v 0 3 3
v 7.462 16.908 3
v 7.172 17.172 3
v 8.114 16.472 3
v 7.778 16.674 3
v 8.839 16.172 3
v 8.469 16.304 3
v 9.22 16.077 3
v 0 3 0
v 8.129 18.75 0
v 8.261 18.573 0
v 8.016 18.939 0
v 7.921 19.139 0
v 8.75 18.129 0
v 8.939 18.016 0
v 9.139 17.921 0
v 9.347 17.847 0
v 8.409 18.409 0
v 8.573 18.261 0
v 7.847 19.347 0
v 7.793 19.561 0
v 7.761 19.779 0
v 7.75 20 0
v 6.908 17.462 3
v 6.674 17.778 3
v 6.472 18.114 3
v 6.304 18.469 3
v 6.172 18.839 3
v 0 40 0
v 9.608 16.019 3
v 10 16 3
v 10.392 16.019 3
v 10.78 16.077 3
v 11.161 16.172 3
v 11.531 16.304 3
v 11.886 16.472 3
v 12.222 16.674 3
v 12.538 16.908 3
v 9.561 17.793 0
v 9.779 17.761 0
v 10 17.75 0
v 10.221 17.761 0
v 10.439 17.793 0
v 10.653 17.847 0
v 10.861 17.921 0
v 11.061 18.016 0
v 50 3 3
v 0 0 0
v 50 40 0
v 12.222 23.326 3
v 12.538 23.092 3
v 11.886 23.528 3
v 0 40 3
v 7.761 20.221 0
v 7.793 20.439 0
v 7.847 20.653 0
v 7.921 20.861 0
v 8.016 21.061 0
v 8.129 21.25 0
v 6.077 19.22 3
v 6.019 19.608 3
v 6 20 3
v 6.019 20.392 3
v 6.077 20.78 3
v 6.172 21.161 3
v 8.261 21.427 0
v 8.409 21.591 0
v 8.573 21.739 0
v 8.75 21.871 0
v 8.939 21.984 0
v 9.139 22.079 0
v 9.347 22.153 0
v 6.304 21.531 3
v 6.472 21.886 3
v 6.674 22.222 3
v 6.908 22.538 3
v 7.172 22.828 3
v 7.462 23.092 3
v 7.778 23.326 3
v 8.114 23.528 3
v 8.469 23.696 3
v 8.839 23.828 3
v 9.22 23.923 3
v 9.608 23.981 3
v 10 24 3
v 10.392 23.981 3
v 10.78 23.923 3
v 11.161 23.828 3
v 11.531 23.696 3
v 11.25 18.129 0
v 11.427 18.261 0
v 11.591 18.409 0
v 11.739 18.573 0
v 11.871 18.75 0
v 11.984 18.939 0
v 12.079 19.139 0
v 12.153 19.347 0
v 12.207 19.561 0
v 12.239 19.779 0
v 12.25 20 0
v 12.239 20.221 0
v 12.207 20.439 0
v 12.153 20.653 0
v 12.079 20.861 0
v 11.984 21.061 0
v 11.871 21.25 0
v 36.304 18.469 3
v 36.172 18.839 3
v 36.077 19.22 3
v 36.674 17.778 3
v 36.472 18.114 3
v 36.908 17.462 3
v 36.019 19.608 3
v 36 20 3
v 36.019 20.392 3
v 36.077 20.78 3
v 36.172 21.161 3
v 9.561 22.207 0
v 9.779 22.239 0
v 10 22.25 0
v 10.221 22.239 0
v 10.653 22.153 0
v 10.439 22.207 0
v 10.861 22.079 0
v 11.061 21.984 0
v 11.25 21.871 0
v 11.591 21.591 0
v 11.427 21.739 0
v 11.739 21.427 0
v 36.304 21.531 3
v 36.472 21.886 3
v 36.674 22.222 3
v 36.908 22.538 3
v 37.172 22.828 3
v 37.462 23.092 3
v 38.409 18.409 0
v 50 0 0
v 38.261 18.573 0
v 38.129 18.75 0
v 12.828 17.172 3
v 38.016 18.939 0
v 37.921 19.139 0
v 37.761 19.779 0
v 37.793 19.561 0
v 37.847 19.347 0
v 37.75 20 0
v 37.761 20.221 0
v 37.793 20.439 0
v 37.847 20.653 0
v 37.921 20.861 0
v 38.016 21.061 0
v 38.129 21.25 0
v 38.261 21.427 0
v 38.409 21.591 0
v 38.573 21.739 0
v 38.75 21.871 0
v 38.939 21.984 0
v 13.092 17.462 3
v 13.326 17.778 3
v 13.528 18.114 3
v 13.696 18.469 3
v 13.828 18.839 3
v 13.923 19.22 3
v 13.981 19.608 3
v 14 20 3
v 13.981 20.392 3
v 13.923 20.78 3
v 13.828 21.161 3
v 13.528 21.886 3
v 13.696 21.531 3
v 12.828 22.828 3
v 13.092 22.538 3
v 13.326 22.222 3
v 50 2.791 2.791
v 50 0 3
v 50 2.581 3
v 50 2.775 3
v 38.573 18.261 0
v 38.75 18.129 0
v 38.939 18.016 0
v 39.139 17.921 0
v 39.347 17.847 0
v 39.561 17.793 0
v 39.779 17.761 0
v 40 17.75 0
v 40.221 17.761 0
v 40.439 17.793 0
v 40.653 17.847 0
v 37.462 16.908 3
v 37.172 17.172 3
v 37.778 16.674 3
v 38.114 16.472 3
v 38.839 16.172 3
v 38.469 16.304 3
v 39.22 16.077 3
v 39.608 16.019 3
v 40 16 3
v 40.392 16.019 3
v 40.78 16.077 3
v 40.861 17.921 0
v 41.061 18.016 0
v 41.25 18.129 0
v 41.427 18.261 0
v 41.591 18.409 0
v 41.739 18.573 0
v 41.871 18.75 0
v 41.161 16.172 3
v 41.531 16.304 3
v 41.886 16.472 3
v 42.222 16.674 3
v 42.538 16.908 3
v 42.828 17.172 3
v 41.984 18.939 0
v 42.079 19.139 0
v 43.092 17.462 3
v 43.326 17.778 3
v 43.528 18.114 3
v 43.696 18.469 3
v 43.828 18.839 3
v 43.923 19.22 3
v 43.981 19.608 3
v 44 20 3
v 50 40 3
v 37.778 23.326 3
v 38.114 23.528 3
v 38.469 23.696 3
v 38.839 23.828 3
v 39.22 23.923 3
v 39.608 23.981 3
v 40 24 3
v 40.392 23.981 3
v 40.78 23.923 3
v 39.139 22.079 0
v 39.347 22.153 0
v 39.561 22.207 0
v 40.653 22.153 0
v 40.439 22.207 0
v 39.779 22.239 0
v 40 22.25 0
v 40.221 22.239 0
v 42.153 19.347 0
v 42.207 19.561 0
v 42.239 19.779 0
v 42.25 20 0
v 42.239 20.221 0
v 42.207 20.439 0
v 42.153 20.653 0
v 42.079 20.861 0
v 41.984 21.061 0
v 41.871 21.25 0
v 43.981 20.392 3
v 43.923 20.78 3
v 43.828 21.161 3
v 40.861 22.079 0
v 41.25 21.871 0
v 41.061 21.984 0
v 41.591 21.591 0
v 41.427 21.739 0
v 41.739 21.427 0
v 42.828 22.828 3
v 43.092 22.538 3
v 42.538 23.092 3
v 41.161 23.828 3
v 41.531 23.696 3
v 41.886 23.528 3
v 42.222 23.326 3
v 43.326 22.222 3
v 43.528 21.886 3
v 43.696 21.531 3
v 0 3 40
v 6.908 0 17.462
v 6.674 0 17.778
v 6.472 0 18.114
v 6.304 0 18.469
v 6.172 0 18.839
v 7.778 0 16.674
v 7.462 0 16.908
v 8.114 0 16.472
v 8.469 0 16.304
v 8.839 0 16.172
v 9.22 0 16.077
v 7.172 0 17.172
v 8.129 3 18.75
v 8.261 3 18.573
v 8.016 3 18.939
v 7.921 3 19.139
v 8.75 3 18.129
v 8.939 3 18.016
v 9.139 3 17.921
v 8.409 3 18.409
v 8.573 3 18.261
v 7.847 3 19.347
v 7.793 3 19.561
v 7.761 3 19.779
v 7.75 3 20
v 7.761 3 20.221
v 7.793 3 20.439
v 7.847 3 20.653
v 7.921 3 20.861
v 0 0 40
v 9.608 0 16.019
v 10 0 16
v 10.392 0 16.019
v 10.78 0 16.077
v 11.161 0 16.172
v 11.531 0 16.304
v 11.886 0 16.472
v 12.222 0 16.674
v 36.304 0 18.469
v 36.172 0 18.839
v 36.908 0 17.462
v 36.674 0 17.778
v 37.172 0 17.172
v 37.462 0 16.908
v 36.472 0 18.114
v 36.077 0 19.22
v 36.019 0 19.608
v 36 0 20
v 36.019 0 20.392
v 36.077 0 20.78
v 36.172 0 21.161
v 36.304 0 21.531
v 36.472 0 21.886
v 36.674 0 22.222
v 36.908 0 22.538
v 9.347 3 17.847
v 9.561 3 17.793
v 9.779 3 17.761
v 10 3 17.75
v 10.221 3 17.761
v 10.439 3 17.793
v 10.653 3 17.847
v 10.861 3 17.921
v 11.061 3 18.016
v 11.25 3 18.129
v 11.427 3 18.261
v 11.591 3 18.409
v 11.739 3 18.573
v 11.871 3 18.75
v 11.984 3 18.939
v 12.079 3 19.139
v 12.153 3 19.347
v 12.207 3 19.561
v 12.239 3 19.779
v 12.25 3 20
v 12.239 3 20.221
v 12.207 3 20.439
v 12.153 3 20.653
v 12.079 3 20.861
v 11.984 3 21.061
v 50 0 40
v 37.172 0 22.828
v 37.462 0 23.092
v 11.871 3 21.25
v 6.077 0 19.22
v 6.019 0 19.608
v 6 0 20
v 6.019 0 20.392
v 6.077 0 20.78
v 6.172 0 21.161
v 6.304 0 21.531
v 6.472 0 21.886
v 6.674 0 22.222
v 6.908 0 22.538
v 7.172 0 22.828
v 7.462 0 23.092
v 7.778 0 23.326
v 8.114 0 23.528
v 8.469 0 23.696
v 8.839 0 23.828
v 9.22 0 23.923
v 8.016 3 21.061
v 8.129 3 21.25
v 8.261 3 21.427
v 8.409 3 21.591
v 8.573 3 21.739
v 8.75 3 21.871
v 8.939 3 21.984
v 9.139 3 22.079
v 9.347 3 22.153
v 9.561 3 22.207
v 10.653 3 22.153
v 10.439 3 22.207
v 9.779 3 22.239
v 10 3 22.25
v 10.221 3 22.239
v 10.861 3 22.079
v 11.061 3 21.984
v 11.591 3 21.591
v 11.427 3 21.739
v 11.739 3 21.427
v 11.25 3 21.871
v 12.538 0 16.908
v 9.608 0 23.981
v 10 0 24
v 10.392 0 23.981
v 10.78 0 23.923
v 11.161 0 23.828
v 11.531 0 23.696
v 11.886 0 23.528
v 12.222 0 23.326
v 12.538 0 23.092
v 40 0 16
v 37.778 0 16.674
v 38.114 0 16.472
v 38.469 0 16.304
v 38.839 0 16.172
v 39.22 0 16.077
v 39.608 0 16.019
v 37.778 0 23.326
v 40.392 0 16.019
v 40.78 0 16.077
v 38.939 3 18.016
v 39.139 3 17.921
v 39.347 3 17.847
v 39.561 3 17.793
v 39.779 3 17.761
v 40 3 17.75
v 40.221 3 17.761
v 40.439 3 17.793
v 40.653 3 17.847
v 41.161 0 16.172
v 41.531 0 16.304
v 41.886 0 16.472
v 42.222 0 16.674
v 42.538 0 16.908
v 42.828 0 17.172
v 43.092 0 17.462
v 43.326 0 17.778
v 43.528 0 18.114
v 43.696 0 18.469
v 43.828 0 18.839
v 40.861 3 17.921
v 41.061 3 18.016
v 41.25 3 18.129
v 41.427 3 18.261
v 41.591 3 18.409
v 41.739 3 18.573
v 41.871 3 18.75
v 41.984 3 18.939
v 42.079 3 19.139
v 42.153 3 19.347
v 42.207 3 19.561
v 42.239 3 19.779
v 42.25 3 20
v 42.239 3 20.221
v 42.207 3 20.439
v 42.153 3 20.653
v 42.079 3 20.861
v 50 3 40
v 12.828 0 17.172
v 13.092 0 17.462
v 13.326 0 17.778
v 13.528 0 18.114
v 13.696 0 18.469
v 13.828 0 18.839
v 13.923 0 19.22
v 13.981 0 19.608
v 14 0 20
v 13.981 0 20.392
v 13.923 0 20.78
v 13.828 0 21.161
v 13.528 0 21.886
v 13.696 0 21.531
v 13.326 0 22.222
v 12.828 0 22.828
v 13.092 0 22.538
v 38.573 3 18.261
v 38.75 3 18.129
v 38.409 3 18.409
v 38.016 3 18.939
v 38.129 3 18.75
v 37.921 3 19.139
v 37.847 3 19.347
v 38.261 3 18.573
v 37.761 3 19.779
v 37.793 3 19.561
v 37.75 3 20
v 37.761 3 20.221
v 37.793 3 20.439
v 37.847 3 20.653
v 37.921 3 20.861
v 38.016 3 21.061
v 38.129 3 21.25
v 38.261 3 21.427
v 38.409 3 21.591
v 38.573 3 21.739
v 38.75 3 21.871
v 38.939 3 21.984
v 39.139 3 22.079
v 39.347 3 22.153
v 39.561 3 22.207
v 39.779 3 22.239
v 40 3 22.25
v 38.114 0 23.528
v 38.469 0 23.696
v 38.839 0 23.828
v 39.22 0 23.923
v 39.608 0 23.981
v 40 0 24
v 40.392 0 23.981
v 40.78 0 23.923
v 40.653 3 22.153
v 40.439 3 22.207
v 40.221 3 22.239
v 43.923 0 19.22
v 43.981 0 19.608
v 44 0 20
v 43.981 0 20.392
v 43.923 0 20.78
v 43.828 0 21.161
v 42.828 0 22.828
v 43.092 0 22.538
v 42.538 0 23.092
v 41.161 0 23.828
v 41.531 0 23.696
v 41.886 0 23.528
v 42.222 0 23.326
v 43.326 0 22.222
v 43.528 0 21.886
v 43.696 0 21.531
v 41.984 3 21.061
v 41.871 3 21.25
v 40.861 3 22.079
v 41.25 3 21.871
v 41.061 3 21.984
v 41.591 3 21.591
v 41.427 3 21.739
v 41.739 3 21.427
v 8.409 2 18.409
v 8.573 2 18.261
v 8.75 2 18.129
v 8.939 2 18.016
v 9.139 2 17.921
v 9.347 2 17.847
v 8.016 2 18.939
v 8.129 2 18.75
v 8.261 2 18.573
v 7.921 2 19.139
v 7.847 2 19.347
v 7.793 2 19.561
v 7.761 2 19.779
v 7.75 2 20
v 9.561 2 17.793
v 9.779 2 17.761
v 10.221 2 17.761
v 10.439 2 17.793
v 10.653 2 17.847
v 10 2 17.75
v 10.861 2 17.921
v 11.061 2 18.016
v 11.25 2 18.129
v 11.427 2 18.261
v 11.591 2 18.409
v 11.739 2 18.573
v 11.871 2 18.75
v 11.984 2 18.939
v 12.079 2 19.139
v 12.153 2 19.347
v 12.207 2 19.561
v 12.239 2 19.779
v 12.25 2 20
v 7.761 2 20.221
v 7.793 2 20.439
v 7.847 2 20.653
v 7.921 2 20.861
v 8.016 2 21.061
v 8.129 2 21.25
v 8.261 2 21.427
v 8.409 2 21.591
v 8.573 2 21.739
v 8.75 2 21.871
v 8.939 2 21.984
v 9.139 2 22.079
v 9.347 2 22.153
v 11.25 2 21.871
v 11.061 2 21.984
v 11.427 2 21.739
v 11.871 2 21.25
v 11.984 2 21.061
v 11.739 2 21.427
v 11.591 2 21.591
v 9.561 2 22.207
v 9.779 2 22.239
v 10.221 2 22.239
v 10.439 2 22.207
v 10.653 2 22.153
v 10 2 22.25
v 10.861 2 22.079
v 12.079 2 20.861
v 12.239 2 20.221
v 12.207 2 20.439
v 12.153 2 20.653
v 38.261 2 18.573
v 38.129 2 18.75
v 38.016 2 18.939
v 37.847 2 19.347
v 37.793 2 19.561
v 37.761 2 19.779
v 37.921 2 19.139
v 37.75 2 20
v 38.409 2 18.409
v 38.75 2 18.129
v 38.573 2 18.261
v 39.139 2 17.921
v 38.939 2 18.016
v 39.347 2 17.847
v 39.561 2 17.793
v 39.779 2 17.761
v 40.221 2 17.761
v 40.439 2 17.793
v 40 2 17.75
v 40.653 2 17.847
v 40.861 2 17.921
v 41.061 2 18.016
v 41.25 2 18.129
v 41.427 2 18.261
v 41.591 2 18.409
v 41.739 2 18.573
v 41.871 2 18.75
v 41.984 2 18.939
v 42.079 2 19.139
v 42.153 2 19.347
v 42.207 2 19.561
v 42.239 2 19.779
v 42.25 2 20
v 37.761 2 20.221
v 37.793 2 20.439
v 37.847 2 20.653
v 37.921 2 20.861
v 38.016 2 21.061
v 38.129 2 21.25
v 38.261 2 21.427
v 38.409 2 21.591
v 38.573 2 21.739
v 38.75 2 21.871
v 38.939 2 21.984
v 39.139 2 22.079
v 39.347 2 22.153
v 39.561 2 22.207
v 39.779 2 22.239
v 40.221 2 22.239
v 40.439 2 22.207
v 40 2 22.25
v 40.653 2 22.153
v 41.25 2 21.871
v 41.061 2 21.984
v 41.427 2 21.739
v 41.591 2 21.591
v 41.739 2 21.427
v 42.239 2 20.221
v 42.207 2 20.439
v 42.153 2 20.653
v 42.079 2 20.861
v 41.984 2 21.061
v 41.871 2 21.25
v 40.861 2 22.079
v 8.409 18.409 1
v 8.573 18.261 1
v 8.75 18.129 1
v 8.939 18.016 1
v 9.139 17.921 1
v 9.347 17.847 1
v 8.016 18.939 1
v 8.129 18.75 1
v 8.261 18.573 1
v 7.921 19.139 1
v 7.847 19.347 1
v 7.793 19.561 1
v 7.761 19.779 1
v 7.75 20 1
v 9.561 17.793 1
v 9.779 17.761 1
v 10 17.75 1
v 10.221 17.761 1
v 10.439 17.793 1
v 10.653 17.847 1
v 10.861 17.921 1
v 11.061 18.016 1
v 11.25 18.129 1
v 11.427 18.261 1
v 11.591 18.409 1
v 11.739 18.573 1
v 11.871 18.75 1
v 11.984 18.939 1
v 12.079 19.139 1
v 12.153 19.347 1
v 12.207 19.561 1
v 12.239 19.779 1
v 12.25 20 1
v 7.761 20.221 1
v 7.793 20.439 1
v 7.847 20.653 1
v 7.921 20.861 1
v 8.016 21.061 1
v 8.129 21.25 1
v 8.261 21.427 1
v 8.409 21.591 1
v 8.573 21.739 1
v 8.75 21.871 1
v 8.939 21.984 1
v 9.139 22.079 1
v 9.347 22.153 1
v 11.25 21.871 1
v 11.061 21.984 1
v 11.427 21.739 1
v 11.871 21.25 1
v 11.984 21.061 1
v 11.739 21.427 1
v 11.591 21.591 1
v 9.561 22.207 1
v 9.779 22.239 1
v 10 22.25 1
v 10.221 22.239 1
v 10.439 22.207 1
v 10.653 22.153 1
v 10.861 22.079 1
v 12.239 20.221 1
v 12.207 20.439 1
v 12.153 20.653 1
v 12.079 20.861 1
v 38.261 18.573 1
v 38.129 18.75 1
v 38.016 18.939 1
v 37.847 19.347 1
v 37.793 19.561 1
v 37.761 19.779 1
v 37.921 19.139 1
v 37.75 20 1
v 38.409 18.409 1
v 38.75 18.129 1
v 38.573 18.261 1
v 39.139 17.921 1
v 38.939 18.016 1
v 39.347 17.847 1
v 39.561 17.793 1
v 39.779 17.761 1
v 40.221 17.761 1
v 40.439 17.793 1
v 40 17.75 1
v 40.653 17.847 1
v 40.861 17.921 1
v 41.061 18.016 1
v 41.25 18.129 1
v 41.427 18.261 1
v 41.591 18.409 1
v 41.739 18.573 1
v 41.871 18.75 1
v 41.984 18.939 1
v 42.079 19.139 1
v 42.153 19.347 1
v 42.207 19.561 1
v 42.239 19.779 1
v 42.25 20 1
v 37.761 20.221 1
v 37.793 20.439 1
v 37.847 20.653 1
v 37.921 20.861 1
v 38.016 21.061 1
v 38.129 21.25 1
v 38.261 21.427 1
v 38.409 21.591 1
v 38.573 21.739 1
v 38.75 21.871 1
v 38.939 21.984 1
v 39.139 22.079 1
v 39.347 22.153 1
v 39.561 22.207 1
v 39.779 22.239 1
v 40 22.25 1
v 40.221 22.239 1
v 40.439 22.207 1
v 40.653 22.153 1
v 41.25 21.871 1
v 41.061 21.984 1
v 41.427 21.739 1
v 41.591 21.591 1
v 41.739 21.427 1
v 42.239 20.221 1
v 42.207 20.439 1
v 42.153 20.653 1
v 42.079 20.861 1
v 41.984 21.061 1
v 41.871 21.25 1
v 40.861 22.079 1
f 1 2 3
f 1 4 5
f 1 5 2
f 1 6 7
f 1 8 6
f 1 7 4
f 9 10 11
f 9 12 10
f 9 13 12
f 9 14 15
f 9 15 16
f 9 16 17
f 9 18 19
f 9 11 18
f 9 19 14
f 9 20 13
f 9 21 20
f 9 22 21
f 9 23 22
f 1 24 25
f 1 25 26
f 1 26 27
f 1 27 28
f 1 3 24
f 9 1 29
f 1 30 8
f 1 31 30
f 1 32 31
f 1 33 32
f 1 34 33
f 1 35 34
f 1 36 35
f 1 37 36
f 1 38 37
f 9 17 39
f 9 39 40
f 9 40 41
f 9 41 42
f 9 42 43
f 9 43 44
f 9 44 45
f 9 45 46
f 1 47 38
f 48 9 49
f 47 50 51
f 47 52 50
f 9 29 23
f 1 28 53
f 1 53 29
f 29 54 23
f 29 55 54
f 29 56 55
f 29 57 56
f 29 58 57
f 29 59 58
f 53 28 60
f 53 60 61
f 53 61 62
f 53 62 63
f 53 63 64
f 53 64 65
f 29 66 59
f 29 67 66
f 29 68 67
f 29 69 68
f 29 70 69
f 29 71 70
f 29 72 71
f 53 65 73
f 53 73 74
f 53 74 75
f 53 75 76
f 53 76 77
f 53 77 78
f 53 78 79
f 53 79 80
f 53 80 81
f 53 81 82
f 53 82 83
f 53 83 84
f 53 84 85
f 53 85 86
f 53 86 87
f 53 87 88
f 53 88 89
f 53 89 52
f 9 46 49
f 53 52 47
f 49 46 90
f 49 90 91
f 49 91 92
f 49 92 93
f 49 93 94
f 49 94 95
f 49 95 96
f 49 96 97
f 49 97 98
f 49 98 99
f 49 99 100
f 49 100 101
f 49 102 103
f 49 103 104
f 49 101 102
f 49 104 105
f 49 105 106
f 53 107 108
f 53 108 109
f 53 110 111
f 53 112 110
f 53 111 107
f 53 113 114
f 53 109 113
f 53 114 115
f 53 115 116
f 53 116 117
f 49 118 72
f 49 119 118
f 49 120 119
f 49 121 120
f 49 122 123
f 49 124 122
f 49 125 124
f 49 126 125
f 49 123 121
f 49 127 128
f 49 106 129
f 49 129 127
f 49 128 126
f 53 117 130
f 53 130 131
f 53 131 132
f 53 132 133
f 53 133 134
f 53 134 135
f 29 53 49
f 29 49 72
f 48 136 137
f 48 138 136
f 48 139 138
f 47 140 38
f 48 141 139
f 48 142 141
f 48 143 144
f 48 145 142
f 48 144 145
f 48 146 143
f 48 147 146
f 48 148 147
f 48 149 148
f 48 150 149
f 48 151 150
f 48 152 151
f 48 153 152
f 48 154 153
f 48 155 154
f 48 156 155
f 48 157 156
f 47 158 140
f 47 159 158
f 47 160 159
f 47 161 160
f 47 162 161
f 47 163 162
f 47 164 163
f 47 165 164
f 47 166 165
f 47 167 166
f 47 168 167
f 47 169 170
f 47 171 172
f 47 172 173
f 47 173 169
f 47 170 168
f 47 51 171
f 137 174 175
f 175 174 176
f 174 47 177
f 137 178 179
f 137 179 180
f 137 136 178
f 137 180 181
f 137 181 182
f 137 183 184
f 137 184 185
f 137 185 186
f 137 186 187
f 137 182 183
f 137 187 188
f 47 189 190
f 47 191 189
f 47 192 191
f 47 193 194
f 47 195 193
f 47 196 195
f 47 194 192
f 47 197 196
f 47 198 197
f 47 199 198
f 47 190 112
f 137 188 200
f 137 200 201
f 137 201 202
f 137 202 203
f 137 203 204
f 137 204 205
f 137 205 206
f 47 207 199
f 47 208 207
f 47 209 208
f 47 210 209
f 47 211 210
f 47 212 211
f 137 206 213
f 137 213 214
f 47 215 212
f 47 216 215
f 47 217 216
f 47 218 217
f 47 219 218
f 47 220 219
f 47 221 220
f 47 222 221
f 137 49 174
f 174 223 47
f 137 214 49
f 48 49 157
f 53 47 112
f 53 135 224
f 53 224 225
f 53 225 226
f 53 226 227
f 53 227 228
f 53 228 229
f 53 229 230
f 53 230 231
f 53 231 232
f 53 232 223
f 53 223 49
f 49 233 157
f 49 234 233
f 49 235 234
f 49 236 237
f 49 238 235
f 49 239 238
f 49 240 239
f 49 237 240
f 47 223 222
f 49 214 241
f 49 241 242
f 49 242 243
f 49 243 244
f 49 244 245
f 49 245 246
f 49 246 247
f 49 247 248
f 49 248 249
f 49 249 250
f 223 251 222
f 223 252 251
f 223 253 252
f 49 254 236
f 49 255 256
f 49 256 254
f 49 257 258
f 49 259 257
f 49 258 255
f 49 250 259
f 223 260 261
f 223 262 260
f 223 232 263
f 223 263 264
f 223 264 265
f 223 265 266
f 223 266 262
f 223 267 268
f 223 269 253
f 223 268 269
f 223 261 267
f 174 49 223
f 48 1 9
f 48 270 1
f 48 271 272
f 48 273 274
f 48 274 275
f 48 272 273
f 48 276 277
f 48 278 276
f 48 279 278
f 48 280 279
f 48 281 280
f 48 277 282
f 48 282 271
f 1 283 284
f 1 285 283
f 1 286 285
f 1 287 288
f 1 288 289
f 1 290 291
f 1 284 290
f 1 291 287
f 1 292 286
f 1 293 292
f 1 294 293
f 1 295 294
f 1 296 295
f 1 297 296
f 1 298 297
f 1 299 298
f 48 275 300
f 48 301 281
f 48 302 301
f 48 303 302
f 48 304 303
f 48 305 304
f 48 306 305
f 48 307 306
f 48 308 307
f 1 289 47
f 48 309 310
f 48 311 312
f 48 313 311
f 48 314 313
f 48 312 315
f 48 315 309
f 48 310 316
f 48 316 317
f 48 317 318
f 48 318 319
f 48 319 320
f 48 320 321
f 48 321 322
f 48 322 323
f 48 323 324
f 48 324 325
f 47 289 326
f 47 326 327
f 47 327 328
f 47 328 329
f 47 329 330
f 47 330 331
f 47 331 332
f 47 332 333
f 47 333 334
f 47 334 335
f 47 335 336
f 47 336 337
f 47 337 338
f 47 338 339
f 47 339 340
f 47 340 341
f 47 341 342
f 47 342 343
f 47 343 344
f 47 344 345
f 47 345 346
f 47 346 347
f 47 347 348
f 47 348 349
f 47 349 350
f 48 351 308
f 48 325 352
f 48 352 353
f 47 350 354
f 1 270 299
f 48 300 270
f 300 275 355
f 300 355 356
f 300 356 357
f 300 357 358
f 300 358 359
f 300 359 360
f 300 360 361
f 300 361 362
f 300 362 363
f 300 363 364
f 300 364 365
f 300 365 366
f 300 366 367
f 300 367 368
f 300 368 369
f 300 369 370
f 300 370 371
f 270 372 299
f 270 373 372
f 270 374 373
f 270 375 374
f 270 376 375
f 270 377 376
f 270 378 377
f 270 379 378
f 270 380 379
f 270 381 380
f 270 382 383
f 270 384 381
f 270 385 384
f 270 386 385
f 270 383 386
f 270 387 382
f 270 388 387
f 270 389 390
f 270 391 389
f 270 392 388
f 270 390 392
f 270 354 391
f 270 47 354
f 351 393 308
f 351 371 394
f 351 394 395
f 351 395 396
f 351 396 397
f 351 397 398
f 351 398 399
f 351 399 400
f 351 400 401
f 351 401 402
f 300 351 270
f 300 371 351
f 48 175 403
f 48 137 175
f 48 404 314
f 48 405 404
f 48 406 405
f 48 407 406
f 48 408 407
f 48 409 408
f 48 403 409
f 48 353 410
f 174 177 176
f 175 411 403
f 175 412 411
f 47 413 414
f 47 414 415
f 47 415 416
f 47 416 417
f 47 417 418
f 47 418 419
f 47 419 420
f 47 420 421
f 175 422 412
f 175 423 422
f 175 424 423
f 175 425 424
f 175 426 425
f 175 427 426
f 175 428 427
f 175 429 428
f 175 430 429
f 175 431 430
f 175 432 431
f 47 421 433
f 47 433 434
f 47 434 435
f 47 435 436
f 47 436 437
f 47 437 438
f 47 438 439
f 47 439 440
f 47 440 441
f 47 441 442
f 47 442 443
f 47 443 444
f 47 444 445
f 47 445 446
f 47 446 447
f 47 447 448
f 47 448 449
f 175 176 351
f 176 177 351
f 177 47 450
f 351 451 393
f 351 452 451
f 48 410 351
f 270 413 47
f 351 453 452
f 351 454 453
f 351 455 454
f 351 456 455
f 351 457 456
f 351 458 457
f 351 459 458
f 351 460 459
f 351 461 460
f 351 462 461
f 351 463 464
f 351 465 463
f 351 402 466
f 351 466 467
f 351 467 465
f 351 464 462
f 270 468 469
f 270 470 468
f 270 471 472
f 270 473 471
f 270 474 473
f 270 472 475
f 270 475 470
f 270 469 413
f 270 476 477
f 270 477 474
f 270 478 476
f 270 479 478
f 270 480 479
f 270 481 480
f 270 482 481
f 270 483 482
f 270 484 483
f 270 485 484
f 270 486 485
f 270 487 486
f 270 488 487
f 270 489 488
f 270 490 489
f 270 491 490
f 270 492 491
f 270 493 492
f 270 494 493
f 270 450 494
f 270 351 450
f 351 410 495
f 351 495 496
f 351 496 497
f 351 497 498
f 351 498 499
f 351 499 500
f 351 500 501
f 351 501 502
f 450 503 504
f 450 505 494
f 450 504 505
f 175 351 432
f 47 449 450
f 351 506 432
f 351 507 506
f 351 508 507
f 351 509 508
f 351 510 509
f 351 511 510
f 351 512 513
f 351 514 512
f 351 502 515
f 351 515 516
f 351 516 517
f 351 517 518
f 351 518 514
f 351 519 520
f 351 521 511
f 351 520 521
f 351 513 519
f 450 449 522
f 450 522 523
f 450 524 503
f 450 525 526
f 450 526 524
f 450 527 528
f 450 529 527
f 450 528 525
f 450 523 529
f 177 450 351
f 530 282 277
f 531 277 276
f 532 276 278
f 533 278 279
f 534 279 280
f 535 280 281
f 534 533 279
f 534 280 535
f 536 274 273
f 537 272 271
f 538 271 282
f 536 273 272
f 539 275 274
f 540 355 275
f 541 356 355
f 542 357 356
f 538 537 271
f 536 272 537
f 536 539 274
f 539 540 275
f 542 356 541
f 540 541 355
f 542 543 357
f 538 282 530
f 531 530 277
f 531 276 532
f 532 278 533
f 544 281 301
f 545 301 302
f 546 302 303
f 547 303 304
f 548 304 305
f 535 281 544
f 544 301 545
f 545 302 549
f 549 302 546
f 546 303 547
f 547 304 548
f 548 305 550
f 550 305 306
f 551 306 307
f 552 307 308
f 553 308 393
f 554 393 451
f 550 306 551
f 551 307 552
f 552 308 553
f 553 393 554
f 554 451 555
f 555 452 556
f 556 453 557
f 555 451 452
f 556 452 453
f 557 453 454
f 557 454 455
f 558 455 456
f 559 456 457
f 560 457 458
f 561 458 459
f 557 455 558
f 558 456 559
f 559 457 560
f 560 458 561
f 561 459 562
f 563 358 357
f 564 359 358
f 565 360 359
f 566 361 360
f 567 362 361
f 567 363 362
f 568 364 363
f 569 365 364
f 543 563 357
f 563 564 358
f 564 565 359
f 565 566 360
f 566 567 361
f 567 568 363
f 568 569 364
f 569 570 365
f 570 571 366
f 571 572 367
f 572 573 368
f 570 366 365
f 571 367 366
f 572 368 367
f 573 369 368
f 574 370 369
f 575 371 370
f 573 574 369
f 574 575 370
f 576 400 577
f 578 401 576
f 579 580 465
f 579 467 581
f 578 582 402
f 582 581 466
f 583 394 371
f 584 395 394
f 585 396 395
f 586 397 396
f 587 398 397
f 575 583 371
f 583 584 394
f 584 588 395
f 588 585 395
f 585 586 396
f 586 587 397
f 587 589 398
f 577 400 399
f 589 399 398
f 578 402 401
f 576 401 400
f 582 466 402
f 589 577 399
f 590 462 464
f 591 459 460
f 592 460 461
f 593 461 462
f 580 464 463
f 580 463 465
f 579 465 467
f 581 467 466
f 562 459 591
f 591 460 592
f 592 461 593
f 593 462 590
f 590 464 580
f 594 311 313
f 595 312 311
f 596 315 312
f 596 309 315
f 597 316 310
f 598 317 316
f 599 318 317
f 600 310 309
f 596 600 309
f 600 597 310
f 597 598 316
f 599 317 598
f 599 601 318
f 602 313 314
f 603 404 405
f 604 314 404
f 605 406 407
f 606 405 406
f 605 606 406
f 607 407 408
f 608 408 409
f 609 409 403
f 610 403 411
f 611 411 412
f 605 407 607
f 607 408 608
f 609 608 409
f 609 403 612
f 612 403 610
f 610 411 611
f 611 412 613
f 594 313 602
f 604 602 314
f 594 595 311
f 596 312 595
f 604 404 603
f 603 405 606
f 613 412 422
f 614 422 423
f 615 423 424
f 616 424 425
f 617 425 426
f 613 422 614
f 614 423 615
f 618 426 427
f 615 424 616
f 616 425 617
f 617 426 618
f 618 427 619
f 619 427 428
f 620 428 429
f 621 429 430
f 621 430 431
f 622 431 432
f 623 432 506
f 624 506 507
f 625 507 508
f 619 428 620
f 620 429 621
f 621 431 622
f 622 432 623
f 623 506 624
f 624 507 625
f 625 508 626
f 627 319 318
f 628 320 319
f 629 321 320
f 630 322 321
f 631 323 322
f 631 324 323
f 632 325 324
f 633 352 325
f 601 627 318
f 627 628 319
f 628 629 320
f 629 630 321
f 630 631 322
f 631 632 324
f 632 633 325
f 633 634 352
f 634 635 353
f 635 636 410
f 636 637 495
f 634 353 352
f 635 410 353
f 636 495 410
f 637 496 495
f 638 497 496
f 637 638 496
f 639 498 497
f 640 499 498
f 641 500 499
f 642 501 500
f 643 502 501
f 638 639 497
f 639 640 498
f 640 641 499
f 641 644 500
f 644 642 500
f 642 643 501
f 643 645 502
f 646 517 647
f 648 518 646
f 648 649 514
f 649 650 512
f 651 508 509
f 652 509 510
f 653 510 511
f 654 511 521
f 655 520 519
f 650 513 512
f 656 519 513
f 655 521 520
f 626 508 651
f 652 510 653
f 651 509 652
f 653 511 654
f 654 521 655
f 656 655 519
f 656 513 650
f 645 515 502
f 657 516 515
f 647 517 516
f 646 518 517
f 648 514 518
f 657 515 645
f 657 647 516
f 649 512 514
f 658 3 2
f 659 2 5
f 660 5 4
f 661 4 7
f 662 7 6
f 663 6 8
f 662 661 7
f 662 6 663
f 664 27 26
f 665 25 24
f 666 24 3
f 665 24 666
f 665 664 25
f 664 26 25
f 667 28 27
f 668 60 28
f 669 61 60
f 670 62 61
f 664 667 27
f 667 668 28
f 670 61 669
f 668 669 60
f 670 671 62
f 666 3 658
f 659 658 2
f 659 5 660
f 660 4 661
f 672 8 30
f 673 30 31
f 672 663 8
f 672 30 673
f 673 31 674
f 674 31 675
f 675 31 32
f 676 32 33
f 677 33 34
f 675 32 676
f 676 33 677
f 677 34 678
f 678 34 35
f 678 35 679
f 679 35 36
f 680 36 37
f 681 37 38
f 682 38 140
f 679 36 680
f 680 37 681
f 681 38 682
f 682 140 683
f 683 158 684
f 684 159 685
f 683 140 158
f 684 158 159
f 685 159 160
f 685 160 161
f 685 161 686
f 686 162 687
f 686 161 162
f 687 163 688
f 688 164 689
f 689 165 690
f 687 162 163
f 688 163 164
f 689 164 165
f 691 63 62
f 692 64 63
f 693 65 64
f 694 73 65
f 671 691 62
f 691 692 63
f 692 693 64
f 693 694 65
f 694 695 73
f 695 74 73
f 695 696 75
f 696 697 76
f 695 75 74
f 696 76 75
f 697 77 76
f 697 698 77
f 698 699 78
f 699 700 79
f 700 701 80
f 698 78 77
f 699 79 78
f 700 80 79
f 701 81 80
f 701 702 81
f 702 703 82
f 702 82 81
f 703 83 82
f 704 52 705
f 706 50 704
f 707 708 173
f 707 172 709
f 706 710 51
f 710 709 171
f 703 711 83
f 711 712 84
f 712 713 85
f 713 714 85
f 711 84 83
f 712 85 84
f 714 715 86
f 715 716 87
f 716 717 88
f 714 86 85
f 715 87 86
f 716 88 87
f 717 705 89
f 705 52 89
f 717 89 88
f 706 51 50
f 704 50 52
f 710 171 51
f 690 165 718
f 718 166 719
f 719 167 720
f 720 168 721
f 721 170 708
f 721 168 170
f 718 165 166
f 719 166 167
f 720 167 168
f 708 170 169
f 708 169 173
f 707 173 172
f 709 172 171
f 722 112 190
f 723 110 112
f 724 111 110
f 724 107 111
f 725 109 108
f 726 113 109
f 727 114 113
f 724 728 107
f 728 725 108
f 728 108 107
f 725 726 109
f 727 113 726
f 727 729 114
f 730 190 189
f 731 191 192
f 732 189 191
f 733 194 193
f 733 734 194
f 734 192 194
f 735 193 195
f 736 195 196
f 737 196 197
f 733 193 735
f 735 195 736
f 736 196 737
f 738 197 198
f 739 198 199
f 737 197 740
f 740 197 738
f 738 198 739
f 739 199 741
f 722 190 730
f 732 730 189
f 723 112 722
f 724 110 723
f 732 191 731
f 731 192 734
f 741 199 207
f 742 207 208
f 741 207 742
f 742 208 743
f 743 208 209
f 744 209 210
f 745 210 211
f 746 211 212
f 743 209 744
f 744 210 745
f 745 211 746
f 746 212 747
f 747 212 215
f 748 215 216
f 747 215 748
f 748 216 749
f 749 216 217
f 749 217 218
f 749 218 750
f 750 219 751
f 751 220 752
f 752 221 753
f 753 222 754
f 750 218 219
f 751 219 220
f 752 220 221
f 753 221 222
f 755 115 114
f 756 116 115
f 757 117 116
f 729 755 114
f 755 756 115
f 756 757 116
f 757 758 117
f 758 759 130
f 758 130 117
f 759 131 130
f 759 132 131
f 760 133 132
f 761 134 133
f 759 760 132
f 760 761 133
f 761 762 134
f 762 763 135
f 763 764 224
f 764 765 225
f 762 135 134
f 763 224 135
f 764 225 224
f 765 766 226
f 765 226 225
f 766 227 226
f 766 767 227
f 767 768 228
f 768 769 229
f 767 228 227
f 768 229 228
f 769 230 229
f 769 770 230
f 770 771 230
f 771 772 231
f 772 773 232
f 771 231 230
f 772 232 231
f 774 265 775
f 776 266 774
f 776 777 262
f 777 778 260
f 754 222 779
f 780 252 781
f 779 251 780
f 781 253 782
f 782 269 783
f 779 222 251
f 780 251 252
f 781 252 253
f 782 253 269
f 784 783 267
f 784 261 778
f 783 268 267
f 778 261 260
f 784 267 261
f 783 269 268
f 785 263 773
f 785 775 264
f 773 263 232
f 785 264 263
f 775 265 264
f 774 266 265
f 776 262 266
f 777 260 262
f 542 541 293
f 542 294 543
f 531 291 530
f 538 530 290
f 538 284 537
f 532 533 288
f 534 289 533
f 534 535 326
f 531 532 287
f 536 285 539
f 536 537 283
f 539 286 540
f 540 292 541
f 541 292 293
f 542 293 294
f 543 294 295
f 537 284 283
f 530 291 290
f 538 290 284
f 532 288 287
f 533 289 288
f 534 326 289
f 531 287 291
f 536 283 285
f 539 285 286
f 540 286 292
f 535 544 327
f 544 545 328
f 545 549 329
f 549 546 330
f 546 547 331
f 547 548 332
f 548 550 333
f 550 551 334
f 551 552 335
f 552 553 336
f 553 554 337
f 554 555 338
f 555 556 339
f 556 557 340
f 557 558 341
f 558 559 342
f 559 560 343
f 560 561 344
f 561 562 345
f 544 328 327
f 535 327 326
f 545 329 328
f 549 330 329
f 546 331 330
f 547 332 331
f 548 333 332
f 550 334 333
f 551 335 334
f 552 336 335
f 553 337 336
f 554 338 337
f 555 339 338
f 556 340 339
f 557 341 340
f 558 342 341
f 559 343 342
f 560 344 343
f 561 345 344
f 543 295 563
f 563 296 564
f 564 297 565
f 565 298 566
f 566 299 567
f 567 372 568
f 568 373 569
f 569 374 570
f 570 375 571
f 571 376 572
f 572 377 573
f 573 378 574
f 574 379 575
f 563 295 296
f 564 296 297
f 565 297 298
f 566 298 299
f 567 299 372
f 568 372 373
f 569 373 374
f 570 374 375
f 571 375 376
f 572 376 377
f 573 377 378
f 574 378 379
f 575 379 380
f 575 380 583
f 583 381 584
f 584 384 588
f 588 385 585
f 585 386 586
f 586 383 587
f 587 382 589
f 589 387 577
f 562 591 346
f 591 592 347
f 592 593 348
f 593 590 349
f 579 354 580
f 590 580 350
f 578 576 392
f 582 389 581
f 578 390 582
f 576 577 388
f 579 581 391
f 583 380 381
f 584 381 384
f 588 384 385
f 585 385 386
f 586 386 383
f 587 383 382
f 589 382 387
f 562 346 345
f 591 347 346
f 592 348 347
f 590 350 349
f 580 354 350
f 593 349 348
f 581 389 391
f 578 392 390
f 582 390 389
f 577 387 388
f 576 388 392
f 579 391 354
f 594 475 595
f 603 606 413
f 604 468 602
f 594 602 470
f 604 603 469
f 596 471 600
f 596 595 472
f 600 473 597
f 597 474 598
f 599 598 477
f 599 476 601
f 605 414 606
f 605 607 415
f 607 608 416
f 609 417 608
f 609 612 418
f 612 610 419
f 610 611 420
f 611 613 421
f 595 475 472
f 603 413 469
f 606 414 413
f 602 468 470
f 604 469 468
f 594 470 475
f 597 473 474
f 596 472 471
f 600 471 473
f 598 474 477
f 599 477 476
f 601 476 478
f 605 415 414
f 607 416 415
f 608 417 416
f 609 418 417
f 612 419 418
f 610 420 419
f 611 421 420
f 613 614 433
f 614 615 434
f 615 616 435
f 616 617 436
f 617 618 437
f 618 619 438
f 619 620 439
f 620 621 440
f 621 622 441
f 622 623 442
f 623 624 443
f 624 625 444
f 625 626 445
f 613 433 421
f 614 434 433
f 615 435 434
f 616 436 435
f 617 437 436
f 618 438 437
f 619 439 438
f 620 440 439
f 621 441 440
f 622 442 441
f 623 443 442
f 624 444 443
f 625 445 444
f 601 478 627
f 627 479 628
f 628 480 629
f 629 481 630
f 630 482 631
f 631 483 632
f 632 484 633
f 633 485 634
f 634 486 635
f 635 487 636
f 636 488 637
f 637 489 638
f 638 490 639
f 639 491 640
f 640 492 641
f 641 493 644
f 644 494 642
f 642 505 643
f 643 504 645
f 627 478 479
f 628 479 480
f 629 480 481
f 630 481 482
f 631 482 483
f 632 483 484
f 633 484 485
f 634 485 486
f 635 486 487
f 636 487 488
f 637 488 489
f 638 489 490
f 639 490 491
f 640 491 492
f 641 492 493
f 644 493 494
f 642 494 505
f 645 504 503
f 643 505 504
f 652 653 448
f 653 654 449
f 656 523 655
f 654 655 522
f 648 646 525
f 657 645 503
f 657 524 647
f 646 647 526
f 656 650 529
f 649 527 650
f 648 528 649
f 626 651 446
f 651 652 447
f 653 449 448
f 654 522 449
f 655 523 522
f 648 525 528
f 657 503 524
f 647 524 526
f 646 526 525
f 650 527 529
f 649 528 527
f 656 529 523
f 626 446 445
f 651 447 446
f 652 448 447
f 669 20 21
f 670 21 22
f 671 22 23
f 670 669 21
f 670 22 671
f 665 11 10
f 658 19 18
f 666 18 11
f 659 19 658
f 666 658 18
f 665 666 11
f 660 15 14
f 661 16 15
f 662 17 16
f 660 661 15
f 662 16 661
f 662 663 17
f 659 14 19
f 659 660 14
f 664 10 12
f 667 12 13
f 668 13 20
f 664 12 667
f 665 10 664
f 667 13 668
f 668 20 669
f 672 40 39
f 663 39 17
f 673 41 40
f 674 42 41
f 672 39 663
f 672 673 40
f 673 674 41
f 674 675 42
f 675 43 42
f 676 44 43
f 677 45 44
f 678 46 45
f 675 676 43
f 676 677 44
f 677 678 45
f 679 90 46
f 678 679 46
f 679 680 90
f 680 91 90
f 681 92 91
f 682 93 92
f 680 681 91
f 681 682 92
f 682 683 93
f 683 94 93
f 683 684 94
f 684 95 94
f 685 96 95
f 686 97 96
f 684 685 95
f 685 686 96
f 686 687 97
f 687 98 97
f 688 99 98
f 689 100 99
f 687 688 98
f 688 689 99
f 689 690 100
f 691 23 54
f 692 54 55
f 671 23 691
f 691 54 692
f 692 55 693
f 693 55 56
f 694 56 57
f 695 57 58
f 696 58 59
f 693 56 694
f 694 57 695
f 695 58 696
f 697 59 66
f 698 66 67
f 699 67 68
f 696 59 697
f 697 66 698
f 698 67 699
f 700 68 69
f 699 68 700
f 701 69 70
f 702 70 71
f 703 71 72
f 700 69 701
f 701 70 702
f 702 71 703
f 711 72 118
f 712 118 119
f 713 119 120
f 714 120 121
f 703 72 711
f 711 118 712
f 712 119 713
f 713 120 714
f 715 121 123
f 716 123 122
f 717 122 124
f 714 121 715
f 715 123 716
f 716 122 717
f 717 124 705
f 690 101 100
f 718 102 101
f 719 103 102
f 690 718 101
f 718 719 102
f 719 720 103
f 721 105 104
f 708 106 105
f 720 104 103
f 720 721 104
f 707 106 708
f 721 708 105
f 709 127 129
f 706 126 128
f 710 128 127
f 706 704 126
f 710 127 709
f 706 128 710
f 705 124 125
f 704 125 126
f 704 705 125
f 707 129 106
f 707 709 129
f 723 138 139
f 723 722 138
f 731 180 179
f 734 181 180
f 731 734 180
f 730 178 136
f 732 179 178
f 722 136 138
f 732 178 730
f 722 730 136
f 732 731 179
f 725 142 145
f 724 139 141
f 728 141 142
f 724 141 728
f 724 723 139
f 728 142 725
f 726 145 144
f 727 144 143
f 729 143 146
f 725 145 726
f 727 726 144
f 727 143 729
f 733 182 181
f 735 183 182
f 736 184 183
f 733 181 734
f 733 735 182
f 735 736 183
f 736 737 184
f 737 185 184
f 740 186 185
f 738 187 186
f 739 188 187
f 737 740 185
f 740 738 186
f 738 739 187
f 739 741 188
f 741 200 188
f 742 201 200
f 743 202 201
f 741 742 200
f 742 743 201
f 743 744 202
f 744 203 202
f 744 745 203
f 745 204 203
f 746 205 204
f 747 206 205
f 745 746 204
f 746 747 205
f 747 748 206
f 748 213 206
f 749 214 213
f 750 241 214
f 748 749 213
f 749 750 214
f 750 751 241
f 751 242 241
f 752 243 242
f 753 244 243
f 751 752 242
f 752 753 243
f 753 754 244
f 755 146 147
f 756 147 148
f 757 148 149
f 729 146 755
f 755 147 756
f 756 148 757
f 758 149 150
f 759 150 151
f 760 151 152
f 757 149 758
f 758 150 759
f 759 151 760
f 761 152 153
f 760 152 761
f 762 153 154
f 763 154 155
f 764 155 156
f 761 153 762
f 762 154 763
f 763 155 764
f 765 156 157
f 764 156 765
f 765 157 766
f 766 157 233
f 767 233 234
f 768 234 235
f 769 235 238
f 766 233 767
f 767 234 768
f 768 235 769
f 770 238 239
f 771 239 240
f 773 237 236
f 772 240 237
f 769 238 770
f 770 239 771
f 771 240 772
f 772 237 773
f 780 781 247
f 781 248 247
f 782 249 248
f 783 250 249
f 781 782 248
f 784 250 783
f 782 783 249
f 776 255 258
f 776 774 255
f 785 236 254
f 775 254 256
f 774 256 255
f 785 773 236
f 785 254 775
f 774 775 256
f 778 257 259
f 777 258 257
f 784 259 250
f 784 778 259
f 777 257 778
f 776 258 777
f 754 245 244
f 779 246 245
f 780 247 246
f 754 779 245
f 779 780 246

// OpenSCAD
// ===============================================
//                Parameters
// ===============================================

// --- Bracket Dimensions ---
width     = 50;  // Width on X-axis
depth     = 40;  // Horizontal flange depth on Y-axis
height    = 40;  // Vertical flange height on Z-axis
thickness = 3;   // Thickness of the flanges

// --- M4 Countersunk Hole Dimensions ---
hole_dia  = 4.5; // Through-hole diameter
cs_dia    = 8;   // Countersink top diameter
cs_depth  = 2;   // Countersink depth

// --- Hole Positioning ---
// X-coordinates for the two holes on each flange
hole_pos_x_list = [10, width - 10]; 
// Y-coordinate for holes on the horizontal flange (centerline)
hole_pos_y = depth / 2;
// Z-coordinate for holes on the vertical flange (centerline)
hole_pos_z = height / 2;

// --- Rendering Quality ---
$fn = 64;


// ===============================================
//           Cutter Module Definition
// ===============================================

// Module to create a reusable countersink cutter shape.
// The cutter is created pointing along the +Z axis.
module countersink_cutter(length) {
    // A small epsilon to ensure clean subtraction
    eps = 0.1;
    
    // Countersink cone (frustum)
    cylinder(h = cs_depth, d1 = cs_dia, d2 = hole_dia);
    
    // Through-hole body
    // This cylinder starts at the same base as the cone (z=0)
    // to form a single solid shape for subtraction.
    cylinder(h = length + eps, d = hole_dia);
}


// ===============================================
//                  Model
// ===============================================

difference() {
    
    // 1. Create the main body of the L-bracket
    // The inner corner is placed at the origin [0, 0, 0].
    union() {
        // Horizontal flange: Extends from origin in +Y direction.
        cube([width, depth, thickness]);
        
        // Vertical flange: Extends from origin in +Z direction.
        cube([width, thickness, height]);
    }
    
    // 2. Create and subtract the countersunk holes
    
    // Holes on the horizontal flange.
    // The outer face is the top surface (z = thickness).
    for (x_pos = hole_pos_x_list) {
        // Move cutter to the top surface and rotate to point down (-Z direction).
        translate([x_pos, hole_pos_y, thickness])
        rotate(a=[180, 0, 0]) {
            countersink_cutter(length = thickness);
        }
    }
    
    // Holes on the vertical flange.
    // The outer face is the front surface (y = 0).
    for (x_pos = hole_pos_x_list) {
        // Move cutter to the front surface and rotate to point inwards (+Y direction).
        translate([x_pos, 0, hole_pos_z])
        rotate(a=[-90, 0, 0]) {
            countersink_cutter(length = thickness);
        }
    }
}
